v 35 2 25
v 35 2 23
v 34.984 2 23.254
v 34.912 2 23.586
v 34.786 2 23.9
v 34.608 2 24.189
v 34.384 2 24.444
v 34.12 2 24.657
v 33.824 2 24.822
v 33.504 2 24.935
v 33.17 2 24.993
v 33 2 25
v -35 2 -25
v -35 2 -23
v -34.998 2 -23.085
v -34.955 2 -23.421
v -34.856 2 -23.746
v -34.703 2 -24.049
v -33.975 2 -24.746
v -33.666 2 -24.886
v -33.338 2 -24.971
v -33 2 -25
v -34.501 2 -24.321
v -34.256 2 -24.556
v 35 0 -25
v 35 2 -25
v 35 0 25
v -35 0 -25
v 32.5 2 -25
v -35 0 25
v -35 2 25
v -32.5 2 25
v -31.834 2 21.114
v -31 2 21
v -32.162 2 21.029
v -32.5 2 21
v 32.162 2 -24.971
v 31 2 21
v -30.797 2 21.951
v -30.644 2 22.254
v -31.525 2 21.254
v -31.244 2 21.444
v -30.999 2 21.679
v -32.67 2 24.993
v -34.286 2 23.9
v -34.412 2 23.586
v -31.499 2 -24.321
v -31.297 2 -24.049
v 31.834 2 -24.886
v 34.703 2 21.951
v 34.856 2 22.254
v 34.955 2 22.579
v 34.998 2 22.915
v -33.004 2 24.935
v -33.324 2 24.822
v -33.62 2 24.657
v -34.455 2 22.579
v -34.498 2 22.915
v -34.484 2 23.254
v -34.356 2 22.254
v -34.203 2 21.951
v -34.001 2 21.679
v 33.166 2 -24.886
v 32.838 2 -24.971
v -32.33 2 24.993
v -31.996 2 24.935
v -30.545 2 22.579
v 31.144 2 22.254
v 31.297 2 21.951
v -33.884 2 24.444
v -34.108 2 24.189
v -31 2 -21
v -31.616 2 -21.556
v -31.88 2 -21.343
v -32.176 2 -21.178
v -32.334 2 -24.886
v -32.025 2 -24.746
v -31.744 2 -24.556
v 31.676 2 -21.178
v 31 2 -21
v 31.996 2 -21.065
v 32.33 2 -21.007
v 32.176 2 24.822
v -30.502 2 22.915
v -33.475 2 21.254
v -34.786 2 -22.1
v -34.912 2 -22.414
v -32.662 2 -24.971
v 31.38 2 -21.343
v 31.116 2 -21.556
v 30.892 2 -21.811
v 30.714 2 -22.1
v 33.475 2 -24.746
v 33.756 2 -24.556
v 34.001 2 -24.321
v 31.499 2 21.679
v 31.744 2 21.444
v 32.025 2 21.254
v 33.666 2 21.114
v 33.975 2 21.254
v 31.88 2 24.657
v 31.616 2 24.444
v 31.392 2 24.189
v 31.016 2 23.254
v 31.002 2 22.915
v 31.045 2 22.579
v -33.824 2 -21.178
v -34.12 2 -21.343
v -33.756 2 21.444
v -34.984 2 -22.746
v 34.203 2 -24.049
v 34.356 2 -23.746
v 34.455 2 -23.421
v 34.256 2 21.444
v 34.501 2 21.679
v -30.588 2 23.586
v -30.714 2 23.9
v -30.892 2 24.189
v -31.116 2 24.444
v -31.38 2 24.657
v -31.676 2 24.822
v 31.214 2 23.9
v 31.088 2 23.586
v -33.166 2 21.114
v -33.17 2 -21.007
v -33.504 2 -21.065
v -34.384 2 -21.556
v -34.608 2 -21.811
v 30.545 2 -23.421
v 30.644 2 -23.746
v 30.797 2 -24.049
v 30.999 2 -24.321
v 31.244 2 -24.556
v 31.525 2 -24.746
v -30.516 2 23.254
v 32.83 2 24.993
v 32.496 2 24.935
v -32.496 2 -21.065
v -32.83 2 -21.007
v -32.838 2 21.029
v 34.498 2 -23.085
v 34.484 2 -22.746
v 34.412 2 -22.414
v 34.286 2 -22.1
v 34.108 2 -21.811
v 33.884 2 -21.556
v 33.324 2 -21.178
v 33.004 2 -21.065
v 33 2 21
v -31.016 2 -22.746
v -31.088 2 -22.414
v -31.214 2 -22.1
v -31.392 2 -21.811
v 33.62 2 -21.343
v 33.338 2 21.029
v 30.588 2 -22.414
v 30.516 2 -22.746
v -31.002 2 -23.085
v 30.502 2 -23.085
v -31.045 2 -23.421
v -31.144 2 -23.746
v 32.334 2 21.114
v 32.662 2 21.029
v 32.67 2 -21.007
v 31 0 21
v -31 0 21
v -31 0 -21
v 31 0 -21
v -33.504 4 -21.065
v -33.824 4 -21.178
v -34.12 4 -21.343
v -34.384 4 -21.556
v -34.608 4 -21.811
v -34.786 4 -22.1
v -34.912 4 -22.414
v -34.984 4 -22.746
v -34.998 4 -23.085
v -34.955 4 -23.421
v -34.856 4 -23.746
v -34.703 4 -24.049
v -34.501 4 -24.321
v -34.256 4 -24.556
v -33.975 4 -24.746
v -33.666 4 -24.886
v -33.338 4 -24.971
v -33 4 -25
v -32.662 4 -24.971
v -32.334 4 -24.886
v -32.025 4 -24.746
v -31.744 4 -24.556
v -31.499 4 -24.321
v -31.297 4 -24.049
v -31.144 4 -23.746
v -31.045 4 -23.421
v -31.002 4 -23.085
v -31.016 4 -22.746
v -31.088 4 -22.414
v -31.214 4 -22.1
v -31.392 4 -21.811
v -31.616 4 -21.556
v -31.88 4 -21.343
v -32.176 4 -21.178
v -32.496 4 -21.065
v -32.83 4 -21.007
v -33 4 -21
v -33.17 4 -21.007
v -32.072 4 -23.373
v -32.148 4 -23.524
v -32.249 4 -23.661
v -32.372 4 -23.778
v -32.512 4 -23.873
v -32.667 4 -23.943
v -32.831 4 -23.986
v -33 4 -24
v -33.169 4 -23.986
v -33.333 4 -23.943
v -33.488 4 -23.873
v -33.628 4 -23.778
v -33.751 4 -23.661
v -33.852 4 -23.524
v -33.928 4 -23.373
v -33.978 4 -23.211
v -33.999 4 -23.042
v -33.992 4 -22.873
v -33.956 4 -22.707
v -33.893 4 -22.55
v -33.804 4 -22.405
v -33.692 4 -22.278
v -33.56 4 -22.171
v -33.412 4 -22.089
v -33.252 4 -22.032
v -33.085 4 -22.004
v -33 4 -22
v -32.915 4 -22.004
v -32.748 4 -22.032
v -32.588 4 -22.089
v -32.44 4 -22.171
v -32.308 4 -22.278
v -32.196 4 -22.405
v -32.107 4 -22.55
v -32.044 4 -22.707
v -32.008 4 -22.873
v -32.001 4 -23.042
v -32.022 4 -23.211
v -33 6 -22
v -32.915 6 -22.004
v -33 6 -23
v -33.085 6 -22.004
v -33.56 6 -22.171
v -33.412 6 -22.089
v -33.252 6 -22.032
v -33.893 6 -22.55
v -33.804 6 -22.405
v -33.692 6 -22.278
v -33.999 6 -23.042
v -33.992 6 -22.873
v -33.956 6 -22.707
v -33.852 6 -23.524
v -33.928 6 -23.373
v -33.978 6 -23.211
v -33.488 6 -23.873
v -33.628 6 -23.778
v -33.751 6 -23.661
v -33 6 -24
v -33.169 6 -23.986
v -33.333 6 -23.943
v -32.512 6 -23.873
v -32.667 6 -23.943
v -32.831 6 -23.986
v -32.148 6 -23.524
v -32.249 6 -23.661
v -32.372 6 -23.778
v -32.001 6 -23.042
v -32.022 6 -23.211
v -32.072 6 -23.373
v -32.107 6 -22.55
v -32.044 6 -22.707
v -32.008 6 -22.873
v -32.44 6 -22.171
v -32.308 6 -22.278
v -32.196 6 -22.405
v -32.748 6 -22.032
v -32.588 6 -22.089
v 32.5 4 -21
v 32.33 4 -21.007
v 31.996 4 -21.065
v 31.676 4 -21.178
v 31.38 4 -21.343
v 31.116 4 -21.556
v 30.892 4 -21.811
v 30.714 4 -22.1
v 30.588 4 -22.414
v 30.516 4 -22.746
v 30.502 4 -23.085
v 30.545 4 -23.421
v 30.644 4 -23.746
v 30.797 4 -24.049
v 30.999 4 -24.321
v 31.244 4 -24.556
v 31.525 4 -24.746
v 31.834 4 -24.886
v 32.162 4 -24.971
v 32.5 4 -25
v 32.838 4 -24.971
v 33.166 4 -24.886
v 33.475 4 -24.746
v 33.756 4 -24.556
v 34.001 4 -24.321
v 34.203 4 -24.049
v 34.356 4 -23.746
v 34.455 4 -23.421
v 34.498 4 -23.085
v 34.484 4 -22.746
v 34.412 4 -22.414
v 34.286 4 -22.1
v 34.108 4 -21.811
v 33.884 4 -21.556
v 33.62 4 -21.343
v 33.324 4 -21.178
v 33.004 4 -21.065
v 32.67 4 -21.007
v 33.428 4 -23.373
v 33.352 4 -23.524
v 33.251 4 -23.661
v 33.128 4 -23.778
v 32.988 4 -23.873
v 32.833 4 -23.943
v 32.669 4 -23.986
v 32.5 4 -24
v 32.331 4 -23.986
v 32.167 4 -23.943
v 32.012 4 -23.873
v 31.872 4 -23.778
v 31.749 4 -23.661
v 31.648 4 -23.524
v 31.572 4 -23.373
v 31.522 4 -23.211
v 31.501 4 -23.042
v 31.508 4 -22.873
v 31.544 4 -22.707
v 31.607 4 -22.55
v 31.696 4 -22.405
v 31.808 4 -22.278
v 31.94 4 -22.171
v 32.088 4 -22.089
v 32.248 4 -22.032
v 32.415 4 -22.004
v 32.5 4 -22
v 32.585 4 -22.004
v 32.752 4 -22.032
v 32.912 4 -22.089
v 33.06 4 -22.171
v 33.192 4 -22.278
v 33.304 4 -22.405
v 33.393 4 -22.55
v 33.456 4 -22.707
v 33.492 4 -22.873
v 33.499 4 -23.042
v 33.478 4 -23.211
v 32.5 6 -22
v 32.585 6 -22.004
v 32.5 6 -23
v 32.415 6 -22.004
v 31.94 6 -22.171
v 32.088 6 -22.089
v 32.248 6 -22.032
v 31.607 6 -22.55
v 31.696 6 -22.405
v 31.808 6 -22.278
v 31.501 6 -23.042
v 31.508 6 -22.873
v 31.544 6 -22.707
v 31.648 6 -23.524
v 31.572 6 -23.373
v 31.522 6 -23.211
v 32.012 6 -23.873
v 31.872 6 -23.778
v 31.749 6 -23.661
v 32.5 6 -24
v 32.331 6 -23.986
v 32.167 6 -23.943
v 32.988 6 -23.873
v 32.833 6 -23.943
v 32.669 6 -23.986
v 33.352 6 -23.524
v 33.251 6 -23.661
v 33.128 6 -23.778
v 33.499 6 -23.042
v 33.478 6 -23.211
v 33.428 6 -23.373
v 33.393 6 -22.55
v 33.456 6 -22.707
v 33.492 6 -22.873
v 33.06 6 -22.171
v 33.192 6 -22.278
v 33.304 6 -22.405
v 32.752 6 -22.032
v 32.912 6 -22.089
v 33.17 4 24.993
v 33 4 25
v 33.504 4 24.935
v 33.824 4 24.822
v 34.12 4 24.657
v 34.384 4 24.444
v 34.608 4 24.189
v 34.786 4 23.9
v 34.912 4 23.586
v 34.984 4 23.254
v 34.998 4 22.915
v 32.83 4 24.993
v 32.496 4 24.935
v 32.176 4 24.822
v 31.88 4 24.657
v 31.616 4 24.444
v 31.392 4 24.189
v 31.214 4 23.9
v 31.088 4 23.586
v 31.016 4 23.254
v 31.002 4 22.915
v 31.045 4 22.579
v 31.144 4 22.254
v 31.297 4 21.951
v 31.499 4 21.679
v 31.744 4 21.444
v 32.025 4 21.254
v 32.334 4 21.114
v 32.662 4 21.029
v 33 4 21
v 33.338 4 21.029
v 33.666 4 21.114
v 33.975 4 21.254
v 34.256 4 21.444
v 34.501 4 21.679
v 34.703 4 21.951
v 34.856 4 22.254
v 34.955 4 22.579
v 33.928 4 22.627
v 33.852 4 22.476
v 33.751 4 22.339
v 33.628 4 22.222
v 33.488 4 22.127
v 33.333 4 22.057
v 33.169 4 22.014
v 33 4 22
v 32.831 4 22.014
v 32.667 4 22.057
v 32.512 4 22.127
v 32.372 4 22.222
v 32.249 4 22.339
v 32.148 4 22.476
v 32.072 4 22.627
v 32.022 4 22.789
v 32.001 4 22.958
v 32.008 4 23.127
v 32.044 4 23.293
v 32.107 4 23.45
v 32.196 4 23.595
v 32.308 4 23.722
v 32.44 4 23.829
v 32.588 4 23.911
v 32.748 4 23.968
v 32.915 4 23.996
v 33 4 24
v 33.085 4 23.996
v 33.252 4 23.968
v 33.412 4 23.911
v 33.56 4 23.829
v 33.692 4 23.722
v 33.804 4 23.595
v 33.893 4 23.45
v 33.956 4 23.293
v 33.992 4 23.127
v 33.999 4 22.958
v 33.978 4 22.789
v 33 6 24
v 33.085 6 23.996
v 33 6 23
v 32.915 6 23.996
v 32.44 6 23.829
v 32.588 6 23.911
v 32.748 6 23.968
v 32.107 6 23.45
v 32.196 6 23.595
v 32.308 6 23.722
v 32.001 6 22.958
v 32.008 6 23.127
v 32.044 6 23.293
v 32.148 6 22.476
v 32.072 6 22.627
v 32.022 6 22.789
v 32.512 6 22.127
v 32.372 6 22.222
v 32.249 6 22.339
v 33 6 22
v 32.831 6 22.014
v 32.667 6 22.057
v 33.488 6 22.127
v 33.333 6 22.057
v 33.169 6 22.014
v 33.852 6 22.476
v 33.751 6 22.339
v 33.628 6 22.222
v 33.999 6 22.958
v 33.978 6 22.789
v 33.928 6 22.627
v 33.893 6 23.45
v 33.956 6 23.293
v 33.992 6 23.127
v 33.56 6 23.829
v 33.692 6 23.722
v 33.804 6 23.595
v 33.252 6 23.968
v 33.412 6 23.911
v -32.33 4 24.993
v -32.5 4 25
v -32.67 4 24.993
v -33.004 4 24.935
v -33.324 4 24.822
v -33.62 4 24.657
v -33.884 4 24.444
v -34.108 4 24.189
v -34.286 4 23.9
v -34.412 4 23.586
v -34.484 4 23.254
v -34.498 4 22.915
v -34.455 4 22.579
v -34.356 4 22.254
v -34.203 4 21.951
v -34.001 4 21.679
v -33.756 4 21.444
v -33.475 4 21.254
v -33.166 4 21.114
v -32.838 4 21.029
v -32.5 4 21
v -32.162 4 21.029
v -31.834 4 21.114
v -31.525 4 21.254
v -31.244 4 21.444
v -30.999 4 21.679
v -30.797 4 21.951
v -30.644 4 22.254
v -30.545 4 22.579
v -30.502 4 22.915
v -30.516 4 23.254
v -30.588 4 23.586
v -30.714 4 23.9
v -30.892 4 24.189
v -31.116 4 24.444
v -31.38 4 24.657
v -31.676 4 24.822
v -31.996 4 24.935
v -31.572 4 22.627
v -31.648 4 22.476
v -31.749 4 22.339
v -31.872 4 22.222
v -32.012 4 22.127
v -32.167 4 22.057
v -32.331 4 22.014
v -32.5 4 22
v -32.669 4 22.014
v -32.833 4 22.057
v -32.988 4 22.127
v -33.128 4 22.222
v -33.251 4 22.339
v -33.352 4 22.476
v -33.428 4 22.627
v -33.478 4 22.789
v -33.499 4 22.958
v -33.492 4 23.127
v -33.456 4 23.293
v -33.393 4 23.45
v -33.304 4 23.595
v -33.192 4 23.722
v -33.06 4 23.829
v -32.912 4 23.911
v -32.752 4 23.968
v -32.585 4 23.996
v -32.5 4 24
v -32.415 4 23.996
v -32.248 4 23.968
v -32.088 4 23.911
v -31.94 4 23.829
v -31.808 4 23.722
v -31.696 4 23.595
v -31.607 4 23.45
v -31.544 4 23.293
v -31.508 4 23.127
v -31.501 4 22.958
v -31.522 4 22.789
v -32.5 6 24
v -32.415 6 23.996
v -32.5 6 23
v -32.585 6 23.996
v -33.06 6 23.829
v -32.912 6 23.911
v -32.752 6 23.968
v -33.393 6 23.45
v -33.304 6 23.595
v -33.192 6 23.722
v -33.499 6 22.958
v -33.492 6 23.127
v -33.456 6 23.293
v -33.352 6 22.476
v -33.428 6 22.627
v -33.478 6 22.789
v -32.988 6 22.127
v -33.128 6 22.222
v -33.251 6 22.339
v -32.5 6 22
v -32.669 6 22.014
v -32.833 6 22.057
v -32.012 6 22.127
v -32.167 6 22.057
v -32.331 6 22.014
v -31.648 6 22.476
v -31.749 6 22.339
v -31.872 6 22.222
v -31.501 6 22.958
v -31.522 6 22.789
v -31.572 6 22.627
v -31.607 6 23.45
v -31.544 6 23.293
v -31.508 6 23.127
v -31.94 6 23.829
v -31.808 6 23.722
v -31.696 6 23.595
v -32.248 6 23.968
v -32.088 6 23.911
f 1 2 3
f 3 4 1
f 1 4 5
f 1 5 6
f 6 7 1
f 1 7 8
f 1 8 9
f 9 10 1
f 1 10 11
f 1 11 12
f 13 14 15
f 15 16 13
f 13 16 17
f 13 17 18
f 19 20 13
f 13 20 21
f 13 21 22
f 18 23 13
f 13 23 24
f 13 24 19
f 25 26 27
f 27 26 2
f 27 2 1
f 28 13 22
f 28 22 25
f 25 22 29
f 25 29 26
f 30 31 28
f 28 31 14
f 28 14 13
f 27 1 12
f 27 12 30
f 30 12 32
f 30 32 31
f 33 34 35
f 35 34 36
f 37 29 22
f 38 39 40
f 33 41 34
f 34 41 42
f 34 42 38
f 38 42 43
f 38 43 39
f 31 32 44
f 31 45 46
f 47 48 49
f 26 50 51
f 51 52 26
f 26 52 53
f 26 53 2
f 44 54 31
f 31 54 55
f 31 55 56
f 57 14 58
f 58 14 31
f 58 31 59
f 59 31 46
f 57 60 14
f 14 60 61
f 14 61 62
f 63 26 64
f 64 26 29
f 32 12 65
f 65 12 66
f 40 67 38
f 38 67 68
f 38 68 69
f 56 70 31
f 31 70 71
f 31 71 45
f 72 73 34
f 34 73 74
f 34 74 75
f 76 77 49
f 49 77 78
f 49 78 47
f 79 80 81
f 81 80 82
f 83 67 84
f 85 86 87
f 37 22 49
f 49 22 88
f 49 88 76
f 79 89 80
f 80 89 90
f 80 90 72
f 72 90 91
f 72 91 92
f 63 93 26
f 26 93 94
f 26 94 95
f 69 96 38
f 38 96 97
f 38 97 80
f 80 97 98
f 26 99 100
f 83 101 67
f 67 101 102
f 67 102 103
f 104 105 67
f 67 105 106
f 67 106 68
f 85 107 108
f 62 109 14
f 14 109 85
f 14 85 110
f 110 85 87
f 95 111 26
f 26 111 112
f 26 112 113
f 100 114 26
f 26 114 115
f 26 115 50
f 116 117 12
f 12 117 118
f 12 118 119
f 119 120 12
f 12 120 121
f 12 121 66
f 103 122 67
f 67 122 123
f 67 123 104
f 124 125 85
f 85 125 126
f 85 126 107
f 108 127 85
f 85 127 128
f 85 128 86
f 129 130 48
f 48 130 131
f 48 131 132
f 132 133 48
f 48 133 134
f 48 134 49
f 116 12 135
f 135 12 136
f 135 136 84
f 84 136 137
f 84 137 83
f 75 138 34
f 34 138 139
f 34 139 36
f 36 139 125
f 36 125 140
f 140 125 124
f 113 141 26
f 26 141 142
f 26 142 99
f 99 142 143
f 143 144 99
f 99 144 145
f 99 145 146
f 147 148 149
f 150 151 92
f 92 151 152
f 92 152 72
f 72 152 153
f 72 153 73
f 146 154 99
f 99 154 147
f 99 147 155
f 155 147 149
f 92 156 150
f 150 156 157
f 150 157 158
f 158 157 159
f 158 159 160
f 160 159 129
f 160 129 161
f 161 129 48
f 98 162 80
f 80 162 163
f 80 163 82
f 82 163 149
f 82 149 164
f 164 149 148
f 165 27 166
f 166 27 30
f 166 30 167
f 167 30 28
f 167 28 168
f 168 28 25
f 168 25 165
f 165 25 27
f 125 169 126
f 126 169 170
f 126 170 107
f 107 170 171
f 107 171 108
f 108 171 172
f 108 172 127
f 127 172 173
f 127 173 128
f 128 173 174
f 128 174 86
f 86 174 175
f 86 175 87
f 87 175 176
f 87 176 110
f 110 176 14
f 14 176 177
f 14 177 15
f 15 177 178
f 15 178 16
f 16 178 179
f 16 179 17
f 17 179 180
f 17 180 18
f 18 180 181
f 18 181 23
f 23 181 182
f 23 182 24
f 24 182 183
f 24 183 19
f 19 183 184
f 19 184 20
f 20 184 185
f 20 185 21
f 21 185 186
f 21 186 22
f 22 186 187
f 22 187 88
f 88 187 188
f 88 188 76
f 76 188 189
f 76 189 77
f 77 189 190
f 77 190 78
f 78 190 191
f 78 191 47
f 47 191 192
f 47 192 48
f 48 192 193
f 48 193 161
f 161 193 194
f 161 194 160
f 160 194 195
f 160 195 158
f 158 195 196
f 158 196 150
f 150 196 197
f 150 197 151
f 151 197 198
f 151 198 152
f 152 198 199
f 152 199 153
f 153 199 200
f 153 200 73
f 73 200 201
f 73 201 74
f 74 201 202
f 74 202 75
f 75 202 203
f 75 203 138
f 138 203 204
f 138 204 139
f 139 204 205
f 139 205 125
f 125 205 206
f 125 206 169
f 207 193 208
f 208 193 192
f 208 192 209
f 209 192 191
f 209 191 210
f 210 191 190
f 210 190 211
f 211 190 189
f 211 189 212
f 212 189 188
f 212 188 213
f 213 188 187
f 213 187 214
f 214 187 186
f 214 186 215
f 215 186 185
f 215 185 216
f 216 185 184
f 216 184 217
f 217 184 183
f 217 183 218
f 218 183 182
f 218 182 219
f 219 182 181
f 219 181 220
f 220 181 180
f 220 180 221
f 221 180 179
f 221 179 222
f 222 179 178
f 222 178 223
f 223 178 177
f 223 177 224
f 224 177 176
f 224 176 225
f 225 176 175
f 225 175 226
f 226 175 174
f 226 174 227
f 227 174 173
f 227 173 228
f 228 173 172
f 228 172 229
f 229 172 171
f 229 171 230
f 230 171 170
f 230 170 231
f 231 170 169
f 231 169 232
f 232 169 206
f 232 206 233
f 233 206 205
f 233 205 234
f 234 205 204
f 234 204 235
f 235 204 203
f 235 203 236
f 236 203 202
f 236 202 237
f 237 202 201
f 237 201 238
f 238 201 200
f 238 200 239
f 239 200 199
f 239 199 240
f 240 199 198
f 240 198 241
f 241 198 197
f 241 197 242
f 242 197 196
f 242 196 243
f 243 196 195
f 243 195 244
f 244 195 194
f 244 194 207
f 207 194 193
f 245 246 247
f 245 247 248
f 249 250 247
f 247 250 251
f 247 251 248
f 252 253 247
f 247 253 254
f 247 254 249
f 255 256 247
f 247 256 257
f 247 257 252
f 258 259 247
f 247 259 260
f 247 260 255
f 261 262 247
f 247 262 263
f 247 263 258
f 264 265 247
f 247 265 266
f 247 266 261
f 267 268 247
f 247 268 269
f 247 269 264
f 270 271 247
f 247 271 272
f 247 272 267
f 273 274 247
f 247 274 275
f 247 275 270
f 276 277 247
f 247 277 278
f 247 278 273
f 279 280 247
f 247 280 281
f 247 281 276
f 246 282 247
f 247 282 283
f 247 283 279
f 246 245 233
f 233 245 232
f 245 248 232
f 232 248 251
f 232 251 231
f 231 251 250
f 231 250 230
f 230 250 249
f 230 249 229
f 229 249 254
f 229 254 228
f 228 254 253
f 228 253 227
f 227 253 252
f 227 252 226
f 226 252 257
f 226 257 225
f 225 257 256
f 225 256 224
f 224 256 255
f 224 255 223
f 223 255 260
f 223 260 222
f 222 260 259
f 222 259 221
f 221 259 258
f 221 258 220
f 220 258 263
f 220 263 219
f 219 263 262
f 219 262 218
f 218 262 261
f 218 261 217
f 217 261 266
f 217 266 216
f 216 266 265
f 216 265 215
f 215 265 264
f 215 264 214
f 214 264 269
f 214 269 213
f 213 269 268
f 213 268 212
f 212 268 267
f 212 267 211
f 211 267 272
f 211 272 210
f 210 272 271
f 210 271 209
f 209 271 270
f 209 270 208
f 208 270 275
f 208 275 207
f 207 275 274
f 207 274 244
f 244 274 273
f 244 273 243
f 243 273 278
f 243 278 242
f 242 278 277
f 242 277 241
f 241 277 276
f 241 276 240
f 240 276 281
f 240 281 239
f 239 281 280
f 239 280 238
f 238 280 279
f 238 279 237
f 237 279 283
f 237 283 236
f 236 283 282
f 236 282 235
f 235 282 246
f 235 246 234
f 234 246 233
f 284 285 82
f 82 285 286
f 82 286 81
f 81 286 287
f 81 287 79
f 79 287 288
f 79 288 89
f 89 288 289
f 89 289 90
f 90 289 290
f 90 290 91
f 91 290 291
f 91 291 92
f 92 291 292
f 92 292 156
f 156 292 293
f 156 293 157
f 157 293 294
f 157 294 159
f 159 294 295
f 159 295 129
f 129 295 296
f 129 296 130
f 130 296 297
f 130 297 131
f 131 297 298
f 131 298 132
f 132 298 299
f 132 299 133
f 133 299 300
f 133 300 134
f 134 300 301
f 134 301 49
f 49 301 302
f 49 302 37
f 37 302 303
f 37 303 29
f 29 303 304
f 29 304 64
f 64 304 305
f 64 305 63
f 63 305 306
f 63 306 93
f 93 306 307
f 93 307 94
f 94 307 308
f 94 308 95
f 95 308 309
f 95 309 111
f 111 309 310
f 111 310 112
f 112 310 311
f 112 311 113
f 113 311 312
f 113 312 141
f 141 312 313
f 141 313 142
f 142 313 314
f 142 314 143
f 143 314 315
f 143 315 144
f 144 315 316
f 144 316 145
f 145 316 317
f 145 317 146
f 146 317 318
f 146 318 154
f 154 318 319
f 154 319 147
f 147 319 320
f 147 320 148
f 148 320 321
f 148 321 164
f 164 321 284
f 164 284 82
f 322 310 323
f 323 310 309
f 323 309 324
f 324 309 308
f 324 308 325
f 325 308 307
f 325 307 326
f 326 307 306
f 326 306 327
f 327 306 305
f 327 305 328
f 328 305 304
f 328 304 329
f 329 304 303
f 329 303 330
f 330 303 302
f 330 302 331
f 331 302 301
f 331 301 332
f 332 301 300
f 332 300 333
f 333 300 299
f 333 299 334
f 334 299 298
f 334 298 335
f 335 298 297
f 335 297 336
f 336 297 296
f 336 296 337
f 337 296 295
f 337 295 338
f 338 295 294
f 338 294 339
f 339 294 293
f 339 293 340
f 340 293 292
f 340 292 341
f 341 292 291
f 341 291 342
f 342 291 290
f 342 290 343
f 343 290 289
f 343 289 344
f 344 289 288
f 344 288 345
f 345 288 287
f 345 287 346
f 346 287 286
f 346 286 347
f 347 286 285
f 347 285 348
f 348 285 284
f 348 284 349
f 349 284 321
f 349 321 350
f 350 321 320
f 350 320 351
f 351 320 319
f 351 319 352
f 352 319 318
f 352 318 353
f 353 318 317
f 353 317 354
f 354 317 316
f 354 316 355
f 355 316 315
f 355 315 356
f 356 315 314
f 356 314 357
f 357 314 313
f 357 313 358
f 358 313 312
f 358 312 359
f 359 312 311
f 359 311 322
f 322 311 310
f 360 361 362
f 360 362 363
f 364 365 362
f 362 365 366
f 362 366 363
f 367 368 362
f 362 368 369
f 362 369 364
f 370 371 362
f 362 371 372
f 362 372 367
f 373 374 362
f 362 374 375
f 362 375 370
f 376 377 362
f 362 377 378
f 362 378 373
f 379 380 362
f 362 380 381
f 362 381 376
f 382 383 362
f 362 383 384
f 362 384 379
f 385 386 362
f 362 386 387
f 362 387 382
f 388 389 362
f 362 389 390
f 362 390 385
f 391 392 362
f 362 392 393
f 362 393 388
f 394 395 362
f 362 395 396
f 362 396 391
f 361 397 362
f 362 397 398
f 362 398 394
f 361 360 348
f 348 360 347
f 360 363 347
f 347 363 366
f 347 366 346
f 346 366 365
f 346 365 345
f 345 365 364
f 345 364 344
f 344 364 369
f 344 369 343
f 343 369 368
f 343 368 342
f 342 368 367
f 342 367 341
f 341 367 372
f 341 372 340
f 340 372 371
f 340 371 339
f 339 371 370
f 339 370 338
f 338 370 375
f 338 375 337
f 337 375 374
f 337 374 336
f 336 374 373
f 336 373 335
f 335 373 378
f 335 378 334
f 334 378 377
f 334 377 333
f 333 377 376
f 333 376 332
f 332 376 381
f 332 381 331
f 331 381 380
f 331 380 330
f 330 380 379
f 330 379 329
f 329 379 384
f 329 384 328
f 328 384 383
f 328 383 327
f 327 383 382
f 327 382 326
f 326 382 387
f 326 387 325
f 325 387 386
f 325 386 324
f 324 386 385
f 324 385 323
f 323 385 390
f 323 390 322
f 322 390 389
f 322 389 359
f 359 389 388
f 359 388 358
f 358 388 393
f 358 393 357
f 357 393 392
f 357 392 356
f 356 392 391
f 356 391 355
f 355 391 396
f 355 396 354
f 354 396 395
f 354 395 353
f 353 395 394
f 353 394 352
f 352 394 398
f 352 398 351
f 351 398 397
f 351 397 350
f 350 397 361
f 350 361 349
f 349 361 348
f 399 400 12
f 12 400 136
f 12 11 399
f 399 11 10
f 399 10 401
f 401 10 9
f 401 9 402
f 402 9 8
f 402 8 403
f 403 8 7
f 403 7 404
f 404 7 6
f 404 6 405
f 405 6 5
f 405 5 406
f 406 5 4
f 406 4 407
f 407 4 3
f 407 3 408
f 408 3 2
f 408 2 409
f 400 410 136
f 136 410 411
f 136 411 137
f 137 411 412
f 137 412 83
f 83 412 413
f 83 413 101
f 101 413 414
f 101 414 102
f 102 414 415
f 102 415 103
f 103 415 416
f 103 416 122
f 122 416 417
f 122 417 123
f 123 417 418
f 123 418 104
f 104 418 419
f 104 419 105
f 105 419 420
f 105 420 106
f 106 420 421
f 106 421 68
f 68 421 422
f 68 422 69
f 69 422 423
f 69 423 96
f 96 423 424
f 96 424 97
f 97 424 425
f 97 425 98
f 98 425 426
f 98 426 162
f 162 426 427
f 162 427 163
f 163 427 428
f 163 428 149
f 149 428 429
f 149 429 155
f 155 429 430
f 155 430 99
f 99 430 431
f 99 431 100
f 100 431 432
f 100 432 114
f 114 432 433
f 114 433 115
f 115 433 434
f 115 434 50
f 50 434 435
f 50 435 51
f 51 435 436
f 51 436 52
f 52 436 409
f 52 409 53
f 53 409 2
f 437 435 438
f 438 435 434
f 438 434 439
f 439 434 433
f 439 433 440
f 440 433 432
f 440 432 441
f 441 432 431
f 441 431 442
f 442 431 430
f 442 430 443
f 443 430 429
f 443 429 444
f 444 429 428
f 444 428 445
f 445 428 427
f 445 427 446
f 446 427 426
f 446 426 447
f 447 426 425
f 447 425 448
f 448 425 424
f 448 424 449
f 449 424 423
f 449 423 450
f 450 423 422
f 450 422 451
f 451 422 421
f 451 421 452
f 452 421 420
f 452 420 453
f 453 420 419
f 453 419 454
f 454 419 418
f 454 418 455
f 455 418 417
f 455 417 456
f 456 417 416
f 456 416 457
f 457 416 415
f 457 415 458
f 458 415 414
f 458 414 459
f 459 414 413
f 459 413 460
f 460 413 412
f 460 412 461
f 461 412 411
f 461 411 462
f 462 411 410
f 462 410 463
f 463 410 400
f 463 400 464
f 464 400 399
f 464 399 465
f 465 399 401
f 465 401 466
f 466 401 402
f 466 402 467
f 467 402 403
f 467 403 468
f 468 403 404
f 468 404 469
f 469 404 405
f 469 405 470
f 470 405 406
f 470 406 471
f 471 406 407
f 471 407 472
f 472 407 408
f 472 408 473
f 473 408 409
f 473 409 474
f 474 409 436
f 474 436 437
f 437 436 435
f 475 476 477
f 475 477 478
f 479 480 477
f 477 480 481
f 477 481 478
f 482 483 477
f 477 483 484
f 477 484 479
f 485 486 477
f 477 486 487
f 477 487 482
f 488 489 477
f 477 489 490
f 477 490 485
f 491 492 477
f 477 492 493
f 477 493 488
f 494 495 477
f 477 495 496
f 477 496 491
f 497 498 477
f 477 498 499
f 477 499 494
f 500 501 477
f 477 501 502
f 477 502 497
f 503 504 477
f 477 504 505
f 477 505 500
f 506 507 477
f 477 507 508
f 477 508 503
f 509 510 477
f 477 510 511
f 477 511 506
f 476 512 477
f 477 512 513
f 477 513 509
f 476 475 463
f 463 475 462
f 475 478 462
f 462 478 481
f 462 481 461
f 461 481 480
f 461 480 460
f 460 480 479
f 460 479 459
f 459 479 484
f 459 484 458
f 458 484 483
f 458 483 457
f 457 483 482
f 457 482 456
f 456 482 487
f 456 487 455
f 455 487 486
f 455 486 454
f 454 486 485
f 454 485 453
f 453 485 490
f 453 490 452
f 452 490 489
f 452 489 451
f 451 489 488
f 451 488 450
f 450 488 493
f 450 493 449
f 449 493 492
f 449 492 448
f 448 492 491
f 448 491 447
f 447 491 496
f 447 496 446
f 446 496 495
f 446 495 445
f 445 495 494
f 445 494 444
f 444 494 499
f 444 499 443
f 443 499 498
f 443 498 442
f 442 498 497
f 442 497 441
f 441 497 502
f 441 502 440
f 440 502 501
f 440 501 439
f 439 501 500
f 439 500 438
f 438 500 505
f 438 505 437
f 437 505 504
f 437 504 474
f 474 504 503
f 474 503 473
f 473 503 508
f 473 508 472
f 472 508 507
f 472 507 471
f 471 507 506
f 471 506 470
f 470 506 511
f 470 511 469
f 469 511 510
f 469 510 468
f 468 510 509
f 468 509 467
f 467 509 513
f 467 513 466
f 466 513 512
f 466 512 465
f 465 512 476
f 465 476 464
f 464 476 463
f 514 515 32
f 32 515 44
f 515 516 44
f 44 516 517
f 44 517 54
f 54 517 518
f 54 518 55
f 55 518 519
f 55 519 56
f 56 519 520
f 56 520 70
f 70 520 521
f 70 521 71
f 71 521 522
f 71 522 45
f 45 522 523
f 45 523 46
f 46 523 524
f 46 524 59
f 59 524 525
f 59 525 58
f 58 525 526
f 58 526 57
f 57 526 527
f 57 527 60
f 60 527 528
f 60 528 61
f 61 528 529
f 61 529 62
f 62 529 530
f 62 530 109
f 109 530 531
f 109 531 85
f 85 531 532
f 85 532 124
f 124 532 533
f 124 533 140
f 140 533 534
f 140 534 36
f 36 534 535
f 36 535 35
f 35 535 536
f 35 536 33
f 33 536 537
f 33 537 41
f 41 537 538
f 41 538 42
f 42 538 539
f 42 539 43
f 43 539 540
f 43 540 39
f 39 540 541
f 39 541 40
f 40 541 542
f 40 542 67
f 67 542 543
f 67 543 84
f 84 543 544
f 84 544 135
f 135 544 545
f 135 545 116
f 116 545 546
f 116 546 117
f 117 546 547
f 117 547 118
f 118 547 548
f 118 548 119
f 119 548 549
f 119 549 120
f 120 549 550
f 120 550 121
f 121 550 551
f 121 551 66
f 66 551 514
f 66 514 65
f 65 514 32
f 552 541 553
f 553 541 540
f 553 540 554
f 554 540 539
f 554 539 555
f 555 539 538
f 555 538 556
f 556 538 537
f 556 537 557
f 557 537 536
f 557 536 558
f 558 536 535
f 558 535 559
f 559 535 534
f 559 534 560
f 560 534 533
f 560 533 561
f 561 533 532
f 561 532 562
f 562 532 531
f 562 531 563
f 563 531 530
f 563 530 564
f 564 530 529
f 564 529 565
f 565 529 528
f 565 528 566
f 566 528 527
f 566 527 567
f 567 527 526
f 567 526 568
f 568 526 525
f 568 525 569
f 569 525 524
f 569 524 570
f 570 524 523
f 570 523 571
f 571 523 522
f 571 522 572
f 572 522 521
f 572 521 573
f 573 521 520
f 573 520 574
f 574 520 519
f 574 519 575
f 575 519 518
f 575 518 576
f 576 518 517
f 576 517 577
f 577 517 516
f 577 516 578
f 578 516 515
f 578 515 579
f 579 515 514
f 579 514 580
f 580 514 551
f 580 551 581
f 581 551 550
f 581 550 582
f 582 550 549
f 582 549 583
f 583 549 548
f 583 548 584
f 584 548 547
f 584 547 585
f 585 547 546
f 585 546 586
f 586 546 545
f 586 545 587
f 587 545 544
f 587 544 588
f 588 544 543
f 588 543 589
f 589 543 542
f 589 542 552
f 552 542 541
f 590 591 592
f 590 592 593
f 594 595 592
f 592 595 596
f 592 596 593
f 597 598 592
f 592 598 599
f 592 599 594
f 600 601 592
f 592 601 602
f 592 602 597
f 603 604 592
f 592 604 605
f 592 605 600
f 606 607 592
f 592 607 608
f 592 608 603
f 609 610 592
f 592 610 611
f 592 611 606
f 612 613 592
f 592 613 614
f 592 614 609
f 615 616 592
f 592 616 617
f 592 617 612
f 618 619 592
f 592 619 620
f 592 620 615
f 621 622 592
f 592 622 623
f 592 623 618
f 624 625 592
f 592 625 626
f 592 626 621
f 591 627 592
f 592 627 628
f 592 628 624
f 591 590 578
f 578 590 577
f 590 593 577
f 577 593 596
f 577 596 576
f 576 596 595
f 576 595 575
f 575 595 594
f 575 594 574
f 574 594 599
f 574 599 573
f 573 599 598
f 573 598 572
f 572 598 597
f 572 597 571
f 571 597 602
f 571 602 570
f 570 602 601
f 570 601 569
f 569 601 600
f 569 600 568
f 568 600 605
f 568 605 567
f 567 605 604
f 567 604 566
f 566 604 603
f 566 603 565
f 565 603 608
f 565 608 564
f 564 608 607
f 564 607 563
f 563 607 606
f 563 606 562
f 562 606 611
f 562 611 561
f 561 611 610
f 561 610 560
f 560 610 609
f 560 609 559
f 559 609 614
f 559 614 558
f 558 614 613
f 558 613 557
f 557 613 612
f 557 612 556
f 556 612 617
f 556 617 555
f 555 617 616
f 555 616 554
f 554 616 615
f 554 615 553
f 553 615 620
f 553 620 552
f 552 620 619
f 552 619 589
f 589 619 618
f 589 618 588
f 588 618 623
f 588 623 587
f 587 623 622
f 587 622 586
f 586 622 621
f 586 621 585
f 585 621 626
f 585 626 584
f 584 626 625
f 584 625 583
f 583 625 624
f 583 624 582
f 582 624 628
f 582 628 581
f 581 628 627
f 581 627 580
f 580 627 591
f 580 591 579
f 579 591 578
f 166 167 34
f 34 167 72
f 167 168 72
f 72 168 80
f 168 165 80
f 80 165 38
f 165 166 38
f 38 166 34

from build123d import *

# Parameters (mm, degrees)
SKETCH1_W           = 70
SKETCH1_H           = 50
BOSS_EXTRUDE1_DEPTH = 2
SKETCH2_R           = 1
BOSS_EXTRUDE2_DEPTH = 4
SKETCH3_R           = 2
BOSS_EXTRUDE3_DEPTH = 2
SKETCH4_W           = 62
SKETCH4_H           = 42
CUT_EXTRUDE1_DEPTH  = 2


with BuildPart() as part:
    # Sketch1 → Boss-Extrude1 (new body)
    with BuildSketch(Plane(origin=(0, 0, 0), x_dir=(1, 0, 0), z_dir=(0, 1, 0))):
        Rectangle(SKETCH1_W, SKETCH1_H)
    extrude(amount=BOSS_EXTRUDE1_DEPTH)

    # Sketch2 → Boss-Extrude2 (add)
    with BuildSketch(Plane(origin=(0, 2, 0), x_dir=(1, 0, 0), z_dir=(0, 1, 0))):
        with Locations(Location((-32.5, -23, 0), (0, 0, 90))):
            Circle(SKETCH2_R)
        with Locations(Location((-33, 23, 0), (0, 0, 90))):
            Circle(SKETCH2_R)
        with Locations(Location((32.5, 23, 0), (0, 0, 90))):
            Circle(SKETCH2_R)
        with Locations(Location((33, -23, 0), (0, 0, 90))):
            Circle(SKETCH2_R)
    extrude(amount=BOSS_EXTRUDE2_DEPTH)

    # Sketch3 → Boss-Extrude3 (add)
    with BuildSketch(Plane(origin=(0, 2, 0), x_dir=(1, 0, 0), z_dir=(0, 1, 0))):
        with Locations(Location((-33, 23, 0), (0, 0, 90))):
            Circle(SKETCH3_R)
        with Locations(Location((32.5, 23, 0), (0, 0, 90))):
            Circle(SKETCH3_R)
        with Locations(Location((33, -23, 0), (0, 0, 270))):
            Circle(SKETCH3_R)
        with Locations(Location((-32.5, -23, 0), (0, 0, 270))):
            Circle(SKETCH3_R)
    extrude(amount=BOSS_EXTRUDE3_DEPTH)

    # Sketch4 → Cut-Extrude1 (cut)
    with BuildSketch(Plane(origin=(0, 2, 0), x_dir=(1, 0, 0), z_dir=(0, 1, 0))):
        Rectangle(SKETCH4_W, SKETCH4_H)
    extrude(amount=-CUT_EXTRUDE1_DEPTH, mode=Mode.SUBTRACT)


solid = part.part
